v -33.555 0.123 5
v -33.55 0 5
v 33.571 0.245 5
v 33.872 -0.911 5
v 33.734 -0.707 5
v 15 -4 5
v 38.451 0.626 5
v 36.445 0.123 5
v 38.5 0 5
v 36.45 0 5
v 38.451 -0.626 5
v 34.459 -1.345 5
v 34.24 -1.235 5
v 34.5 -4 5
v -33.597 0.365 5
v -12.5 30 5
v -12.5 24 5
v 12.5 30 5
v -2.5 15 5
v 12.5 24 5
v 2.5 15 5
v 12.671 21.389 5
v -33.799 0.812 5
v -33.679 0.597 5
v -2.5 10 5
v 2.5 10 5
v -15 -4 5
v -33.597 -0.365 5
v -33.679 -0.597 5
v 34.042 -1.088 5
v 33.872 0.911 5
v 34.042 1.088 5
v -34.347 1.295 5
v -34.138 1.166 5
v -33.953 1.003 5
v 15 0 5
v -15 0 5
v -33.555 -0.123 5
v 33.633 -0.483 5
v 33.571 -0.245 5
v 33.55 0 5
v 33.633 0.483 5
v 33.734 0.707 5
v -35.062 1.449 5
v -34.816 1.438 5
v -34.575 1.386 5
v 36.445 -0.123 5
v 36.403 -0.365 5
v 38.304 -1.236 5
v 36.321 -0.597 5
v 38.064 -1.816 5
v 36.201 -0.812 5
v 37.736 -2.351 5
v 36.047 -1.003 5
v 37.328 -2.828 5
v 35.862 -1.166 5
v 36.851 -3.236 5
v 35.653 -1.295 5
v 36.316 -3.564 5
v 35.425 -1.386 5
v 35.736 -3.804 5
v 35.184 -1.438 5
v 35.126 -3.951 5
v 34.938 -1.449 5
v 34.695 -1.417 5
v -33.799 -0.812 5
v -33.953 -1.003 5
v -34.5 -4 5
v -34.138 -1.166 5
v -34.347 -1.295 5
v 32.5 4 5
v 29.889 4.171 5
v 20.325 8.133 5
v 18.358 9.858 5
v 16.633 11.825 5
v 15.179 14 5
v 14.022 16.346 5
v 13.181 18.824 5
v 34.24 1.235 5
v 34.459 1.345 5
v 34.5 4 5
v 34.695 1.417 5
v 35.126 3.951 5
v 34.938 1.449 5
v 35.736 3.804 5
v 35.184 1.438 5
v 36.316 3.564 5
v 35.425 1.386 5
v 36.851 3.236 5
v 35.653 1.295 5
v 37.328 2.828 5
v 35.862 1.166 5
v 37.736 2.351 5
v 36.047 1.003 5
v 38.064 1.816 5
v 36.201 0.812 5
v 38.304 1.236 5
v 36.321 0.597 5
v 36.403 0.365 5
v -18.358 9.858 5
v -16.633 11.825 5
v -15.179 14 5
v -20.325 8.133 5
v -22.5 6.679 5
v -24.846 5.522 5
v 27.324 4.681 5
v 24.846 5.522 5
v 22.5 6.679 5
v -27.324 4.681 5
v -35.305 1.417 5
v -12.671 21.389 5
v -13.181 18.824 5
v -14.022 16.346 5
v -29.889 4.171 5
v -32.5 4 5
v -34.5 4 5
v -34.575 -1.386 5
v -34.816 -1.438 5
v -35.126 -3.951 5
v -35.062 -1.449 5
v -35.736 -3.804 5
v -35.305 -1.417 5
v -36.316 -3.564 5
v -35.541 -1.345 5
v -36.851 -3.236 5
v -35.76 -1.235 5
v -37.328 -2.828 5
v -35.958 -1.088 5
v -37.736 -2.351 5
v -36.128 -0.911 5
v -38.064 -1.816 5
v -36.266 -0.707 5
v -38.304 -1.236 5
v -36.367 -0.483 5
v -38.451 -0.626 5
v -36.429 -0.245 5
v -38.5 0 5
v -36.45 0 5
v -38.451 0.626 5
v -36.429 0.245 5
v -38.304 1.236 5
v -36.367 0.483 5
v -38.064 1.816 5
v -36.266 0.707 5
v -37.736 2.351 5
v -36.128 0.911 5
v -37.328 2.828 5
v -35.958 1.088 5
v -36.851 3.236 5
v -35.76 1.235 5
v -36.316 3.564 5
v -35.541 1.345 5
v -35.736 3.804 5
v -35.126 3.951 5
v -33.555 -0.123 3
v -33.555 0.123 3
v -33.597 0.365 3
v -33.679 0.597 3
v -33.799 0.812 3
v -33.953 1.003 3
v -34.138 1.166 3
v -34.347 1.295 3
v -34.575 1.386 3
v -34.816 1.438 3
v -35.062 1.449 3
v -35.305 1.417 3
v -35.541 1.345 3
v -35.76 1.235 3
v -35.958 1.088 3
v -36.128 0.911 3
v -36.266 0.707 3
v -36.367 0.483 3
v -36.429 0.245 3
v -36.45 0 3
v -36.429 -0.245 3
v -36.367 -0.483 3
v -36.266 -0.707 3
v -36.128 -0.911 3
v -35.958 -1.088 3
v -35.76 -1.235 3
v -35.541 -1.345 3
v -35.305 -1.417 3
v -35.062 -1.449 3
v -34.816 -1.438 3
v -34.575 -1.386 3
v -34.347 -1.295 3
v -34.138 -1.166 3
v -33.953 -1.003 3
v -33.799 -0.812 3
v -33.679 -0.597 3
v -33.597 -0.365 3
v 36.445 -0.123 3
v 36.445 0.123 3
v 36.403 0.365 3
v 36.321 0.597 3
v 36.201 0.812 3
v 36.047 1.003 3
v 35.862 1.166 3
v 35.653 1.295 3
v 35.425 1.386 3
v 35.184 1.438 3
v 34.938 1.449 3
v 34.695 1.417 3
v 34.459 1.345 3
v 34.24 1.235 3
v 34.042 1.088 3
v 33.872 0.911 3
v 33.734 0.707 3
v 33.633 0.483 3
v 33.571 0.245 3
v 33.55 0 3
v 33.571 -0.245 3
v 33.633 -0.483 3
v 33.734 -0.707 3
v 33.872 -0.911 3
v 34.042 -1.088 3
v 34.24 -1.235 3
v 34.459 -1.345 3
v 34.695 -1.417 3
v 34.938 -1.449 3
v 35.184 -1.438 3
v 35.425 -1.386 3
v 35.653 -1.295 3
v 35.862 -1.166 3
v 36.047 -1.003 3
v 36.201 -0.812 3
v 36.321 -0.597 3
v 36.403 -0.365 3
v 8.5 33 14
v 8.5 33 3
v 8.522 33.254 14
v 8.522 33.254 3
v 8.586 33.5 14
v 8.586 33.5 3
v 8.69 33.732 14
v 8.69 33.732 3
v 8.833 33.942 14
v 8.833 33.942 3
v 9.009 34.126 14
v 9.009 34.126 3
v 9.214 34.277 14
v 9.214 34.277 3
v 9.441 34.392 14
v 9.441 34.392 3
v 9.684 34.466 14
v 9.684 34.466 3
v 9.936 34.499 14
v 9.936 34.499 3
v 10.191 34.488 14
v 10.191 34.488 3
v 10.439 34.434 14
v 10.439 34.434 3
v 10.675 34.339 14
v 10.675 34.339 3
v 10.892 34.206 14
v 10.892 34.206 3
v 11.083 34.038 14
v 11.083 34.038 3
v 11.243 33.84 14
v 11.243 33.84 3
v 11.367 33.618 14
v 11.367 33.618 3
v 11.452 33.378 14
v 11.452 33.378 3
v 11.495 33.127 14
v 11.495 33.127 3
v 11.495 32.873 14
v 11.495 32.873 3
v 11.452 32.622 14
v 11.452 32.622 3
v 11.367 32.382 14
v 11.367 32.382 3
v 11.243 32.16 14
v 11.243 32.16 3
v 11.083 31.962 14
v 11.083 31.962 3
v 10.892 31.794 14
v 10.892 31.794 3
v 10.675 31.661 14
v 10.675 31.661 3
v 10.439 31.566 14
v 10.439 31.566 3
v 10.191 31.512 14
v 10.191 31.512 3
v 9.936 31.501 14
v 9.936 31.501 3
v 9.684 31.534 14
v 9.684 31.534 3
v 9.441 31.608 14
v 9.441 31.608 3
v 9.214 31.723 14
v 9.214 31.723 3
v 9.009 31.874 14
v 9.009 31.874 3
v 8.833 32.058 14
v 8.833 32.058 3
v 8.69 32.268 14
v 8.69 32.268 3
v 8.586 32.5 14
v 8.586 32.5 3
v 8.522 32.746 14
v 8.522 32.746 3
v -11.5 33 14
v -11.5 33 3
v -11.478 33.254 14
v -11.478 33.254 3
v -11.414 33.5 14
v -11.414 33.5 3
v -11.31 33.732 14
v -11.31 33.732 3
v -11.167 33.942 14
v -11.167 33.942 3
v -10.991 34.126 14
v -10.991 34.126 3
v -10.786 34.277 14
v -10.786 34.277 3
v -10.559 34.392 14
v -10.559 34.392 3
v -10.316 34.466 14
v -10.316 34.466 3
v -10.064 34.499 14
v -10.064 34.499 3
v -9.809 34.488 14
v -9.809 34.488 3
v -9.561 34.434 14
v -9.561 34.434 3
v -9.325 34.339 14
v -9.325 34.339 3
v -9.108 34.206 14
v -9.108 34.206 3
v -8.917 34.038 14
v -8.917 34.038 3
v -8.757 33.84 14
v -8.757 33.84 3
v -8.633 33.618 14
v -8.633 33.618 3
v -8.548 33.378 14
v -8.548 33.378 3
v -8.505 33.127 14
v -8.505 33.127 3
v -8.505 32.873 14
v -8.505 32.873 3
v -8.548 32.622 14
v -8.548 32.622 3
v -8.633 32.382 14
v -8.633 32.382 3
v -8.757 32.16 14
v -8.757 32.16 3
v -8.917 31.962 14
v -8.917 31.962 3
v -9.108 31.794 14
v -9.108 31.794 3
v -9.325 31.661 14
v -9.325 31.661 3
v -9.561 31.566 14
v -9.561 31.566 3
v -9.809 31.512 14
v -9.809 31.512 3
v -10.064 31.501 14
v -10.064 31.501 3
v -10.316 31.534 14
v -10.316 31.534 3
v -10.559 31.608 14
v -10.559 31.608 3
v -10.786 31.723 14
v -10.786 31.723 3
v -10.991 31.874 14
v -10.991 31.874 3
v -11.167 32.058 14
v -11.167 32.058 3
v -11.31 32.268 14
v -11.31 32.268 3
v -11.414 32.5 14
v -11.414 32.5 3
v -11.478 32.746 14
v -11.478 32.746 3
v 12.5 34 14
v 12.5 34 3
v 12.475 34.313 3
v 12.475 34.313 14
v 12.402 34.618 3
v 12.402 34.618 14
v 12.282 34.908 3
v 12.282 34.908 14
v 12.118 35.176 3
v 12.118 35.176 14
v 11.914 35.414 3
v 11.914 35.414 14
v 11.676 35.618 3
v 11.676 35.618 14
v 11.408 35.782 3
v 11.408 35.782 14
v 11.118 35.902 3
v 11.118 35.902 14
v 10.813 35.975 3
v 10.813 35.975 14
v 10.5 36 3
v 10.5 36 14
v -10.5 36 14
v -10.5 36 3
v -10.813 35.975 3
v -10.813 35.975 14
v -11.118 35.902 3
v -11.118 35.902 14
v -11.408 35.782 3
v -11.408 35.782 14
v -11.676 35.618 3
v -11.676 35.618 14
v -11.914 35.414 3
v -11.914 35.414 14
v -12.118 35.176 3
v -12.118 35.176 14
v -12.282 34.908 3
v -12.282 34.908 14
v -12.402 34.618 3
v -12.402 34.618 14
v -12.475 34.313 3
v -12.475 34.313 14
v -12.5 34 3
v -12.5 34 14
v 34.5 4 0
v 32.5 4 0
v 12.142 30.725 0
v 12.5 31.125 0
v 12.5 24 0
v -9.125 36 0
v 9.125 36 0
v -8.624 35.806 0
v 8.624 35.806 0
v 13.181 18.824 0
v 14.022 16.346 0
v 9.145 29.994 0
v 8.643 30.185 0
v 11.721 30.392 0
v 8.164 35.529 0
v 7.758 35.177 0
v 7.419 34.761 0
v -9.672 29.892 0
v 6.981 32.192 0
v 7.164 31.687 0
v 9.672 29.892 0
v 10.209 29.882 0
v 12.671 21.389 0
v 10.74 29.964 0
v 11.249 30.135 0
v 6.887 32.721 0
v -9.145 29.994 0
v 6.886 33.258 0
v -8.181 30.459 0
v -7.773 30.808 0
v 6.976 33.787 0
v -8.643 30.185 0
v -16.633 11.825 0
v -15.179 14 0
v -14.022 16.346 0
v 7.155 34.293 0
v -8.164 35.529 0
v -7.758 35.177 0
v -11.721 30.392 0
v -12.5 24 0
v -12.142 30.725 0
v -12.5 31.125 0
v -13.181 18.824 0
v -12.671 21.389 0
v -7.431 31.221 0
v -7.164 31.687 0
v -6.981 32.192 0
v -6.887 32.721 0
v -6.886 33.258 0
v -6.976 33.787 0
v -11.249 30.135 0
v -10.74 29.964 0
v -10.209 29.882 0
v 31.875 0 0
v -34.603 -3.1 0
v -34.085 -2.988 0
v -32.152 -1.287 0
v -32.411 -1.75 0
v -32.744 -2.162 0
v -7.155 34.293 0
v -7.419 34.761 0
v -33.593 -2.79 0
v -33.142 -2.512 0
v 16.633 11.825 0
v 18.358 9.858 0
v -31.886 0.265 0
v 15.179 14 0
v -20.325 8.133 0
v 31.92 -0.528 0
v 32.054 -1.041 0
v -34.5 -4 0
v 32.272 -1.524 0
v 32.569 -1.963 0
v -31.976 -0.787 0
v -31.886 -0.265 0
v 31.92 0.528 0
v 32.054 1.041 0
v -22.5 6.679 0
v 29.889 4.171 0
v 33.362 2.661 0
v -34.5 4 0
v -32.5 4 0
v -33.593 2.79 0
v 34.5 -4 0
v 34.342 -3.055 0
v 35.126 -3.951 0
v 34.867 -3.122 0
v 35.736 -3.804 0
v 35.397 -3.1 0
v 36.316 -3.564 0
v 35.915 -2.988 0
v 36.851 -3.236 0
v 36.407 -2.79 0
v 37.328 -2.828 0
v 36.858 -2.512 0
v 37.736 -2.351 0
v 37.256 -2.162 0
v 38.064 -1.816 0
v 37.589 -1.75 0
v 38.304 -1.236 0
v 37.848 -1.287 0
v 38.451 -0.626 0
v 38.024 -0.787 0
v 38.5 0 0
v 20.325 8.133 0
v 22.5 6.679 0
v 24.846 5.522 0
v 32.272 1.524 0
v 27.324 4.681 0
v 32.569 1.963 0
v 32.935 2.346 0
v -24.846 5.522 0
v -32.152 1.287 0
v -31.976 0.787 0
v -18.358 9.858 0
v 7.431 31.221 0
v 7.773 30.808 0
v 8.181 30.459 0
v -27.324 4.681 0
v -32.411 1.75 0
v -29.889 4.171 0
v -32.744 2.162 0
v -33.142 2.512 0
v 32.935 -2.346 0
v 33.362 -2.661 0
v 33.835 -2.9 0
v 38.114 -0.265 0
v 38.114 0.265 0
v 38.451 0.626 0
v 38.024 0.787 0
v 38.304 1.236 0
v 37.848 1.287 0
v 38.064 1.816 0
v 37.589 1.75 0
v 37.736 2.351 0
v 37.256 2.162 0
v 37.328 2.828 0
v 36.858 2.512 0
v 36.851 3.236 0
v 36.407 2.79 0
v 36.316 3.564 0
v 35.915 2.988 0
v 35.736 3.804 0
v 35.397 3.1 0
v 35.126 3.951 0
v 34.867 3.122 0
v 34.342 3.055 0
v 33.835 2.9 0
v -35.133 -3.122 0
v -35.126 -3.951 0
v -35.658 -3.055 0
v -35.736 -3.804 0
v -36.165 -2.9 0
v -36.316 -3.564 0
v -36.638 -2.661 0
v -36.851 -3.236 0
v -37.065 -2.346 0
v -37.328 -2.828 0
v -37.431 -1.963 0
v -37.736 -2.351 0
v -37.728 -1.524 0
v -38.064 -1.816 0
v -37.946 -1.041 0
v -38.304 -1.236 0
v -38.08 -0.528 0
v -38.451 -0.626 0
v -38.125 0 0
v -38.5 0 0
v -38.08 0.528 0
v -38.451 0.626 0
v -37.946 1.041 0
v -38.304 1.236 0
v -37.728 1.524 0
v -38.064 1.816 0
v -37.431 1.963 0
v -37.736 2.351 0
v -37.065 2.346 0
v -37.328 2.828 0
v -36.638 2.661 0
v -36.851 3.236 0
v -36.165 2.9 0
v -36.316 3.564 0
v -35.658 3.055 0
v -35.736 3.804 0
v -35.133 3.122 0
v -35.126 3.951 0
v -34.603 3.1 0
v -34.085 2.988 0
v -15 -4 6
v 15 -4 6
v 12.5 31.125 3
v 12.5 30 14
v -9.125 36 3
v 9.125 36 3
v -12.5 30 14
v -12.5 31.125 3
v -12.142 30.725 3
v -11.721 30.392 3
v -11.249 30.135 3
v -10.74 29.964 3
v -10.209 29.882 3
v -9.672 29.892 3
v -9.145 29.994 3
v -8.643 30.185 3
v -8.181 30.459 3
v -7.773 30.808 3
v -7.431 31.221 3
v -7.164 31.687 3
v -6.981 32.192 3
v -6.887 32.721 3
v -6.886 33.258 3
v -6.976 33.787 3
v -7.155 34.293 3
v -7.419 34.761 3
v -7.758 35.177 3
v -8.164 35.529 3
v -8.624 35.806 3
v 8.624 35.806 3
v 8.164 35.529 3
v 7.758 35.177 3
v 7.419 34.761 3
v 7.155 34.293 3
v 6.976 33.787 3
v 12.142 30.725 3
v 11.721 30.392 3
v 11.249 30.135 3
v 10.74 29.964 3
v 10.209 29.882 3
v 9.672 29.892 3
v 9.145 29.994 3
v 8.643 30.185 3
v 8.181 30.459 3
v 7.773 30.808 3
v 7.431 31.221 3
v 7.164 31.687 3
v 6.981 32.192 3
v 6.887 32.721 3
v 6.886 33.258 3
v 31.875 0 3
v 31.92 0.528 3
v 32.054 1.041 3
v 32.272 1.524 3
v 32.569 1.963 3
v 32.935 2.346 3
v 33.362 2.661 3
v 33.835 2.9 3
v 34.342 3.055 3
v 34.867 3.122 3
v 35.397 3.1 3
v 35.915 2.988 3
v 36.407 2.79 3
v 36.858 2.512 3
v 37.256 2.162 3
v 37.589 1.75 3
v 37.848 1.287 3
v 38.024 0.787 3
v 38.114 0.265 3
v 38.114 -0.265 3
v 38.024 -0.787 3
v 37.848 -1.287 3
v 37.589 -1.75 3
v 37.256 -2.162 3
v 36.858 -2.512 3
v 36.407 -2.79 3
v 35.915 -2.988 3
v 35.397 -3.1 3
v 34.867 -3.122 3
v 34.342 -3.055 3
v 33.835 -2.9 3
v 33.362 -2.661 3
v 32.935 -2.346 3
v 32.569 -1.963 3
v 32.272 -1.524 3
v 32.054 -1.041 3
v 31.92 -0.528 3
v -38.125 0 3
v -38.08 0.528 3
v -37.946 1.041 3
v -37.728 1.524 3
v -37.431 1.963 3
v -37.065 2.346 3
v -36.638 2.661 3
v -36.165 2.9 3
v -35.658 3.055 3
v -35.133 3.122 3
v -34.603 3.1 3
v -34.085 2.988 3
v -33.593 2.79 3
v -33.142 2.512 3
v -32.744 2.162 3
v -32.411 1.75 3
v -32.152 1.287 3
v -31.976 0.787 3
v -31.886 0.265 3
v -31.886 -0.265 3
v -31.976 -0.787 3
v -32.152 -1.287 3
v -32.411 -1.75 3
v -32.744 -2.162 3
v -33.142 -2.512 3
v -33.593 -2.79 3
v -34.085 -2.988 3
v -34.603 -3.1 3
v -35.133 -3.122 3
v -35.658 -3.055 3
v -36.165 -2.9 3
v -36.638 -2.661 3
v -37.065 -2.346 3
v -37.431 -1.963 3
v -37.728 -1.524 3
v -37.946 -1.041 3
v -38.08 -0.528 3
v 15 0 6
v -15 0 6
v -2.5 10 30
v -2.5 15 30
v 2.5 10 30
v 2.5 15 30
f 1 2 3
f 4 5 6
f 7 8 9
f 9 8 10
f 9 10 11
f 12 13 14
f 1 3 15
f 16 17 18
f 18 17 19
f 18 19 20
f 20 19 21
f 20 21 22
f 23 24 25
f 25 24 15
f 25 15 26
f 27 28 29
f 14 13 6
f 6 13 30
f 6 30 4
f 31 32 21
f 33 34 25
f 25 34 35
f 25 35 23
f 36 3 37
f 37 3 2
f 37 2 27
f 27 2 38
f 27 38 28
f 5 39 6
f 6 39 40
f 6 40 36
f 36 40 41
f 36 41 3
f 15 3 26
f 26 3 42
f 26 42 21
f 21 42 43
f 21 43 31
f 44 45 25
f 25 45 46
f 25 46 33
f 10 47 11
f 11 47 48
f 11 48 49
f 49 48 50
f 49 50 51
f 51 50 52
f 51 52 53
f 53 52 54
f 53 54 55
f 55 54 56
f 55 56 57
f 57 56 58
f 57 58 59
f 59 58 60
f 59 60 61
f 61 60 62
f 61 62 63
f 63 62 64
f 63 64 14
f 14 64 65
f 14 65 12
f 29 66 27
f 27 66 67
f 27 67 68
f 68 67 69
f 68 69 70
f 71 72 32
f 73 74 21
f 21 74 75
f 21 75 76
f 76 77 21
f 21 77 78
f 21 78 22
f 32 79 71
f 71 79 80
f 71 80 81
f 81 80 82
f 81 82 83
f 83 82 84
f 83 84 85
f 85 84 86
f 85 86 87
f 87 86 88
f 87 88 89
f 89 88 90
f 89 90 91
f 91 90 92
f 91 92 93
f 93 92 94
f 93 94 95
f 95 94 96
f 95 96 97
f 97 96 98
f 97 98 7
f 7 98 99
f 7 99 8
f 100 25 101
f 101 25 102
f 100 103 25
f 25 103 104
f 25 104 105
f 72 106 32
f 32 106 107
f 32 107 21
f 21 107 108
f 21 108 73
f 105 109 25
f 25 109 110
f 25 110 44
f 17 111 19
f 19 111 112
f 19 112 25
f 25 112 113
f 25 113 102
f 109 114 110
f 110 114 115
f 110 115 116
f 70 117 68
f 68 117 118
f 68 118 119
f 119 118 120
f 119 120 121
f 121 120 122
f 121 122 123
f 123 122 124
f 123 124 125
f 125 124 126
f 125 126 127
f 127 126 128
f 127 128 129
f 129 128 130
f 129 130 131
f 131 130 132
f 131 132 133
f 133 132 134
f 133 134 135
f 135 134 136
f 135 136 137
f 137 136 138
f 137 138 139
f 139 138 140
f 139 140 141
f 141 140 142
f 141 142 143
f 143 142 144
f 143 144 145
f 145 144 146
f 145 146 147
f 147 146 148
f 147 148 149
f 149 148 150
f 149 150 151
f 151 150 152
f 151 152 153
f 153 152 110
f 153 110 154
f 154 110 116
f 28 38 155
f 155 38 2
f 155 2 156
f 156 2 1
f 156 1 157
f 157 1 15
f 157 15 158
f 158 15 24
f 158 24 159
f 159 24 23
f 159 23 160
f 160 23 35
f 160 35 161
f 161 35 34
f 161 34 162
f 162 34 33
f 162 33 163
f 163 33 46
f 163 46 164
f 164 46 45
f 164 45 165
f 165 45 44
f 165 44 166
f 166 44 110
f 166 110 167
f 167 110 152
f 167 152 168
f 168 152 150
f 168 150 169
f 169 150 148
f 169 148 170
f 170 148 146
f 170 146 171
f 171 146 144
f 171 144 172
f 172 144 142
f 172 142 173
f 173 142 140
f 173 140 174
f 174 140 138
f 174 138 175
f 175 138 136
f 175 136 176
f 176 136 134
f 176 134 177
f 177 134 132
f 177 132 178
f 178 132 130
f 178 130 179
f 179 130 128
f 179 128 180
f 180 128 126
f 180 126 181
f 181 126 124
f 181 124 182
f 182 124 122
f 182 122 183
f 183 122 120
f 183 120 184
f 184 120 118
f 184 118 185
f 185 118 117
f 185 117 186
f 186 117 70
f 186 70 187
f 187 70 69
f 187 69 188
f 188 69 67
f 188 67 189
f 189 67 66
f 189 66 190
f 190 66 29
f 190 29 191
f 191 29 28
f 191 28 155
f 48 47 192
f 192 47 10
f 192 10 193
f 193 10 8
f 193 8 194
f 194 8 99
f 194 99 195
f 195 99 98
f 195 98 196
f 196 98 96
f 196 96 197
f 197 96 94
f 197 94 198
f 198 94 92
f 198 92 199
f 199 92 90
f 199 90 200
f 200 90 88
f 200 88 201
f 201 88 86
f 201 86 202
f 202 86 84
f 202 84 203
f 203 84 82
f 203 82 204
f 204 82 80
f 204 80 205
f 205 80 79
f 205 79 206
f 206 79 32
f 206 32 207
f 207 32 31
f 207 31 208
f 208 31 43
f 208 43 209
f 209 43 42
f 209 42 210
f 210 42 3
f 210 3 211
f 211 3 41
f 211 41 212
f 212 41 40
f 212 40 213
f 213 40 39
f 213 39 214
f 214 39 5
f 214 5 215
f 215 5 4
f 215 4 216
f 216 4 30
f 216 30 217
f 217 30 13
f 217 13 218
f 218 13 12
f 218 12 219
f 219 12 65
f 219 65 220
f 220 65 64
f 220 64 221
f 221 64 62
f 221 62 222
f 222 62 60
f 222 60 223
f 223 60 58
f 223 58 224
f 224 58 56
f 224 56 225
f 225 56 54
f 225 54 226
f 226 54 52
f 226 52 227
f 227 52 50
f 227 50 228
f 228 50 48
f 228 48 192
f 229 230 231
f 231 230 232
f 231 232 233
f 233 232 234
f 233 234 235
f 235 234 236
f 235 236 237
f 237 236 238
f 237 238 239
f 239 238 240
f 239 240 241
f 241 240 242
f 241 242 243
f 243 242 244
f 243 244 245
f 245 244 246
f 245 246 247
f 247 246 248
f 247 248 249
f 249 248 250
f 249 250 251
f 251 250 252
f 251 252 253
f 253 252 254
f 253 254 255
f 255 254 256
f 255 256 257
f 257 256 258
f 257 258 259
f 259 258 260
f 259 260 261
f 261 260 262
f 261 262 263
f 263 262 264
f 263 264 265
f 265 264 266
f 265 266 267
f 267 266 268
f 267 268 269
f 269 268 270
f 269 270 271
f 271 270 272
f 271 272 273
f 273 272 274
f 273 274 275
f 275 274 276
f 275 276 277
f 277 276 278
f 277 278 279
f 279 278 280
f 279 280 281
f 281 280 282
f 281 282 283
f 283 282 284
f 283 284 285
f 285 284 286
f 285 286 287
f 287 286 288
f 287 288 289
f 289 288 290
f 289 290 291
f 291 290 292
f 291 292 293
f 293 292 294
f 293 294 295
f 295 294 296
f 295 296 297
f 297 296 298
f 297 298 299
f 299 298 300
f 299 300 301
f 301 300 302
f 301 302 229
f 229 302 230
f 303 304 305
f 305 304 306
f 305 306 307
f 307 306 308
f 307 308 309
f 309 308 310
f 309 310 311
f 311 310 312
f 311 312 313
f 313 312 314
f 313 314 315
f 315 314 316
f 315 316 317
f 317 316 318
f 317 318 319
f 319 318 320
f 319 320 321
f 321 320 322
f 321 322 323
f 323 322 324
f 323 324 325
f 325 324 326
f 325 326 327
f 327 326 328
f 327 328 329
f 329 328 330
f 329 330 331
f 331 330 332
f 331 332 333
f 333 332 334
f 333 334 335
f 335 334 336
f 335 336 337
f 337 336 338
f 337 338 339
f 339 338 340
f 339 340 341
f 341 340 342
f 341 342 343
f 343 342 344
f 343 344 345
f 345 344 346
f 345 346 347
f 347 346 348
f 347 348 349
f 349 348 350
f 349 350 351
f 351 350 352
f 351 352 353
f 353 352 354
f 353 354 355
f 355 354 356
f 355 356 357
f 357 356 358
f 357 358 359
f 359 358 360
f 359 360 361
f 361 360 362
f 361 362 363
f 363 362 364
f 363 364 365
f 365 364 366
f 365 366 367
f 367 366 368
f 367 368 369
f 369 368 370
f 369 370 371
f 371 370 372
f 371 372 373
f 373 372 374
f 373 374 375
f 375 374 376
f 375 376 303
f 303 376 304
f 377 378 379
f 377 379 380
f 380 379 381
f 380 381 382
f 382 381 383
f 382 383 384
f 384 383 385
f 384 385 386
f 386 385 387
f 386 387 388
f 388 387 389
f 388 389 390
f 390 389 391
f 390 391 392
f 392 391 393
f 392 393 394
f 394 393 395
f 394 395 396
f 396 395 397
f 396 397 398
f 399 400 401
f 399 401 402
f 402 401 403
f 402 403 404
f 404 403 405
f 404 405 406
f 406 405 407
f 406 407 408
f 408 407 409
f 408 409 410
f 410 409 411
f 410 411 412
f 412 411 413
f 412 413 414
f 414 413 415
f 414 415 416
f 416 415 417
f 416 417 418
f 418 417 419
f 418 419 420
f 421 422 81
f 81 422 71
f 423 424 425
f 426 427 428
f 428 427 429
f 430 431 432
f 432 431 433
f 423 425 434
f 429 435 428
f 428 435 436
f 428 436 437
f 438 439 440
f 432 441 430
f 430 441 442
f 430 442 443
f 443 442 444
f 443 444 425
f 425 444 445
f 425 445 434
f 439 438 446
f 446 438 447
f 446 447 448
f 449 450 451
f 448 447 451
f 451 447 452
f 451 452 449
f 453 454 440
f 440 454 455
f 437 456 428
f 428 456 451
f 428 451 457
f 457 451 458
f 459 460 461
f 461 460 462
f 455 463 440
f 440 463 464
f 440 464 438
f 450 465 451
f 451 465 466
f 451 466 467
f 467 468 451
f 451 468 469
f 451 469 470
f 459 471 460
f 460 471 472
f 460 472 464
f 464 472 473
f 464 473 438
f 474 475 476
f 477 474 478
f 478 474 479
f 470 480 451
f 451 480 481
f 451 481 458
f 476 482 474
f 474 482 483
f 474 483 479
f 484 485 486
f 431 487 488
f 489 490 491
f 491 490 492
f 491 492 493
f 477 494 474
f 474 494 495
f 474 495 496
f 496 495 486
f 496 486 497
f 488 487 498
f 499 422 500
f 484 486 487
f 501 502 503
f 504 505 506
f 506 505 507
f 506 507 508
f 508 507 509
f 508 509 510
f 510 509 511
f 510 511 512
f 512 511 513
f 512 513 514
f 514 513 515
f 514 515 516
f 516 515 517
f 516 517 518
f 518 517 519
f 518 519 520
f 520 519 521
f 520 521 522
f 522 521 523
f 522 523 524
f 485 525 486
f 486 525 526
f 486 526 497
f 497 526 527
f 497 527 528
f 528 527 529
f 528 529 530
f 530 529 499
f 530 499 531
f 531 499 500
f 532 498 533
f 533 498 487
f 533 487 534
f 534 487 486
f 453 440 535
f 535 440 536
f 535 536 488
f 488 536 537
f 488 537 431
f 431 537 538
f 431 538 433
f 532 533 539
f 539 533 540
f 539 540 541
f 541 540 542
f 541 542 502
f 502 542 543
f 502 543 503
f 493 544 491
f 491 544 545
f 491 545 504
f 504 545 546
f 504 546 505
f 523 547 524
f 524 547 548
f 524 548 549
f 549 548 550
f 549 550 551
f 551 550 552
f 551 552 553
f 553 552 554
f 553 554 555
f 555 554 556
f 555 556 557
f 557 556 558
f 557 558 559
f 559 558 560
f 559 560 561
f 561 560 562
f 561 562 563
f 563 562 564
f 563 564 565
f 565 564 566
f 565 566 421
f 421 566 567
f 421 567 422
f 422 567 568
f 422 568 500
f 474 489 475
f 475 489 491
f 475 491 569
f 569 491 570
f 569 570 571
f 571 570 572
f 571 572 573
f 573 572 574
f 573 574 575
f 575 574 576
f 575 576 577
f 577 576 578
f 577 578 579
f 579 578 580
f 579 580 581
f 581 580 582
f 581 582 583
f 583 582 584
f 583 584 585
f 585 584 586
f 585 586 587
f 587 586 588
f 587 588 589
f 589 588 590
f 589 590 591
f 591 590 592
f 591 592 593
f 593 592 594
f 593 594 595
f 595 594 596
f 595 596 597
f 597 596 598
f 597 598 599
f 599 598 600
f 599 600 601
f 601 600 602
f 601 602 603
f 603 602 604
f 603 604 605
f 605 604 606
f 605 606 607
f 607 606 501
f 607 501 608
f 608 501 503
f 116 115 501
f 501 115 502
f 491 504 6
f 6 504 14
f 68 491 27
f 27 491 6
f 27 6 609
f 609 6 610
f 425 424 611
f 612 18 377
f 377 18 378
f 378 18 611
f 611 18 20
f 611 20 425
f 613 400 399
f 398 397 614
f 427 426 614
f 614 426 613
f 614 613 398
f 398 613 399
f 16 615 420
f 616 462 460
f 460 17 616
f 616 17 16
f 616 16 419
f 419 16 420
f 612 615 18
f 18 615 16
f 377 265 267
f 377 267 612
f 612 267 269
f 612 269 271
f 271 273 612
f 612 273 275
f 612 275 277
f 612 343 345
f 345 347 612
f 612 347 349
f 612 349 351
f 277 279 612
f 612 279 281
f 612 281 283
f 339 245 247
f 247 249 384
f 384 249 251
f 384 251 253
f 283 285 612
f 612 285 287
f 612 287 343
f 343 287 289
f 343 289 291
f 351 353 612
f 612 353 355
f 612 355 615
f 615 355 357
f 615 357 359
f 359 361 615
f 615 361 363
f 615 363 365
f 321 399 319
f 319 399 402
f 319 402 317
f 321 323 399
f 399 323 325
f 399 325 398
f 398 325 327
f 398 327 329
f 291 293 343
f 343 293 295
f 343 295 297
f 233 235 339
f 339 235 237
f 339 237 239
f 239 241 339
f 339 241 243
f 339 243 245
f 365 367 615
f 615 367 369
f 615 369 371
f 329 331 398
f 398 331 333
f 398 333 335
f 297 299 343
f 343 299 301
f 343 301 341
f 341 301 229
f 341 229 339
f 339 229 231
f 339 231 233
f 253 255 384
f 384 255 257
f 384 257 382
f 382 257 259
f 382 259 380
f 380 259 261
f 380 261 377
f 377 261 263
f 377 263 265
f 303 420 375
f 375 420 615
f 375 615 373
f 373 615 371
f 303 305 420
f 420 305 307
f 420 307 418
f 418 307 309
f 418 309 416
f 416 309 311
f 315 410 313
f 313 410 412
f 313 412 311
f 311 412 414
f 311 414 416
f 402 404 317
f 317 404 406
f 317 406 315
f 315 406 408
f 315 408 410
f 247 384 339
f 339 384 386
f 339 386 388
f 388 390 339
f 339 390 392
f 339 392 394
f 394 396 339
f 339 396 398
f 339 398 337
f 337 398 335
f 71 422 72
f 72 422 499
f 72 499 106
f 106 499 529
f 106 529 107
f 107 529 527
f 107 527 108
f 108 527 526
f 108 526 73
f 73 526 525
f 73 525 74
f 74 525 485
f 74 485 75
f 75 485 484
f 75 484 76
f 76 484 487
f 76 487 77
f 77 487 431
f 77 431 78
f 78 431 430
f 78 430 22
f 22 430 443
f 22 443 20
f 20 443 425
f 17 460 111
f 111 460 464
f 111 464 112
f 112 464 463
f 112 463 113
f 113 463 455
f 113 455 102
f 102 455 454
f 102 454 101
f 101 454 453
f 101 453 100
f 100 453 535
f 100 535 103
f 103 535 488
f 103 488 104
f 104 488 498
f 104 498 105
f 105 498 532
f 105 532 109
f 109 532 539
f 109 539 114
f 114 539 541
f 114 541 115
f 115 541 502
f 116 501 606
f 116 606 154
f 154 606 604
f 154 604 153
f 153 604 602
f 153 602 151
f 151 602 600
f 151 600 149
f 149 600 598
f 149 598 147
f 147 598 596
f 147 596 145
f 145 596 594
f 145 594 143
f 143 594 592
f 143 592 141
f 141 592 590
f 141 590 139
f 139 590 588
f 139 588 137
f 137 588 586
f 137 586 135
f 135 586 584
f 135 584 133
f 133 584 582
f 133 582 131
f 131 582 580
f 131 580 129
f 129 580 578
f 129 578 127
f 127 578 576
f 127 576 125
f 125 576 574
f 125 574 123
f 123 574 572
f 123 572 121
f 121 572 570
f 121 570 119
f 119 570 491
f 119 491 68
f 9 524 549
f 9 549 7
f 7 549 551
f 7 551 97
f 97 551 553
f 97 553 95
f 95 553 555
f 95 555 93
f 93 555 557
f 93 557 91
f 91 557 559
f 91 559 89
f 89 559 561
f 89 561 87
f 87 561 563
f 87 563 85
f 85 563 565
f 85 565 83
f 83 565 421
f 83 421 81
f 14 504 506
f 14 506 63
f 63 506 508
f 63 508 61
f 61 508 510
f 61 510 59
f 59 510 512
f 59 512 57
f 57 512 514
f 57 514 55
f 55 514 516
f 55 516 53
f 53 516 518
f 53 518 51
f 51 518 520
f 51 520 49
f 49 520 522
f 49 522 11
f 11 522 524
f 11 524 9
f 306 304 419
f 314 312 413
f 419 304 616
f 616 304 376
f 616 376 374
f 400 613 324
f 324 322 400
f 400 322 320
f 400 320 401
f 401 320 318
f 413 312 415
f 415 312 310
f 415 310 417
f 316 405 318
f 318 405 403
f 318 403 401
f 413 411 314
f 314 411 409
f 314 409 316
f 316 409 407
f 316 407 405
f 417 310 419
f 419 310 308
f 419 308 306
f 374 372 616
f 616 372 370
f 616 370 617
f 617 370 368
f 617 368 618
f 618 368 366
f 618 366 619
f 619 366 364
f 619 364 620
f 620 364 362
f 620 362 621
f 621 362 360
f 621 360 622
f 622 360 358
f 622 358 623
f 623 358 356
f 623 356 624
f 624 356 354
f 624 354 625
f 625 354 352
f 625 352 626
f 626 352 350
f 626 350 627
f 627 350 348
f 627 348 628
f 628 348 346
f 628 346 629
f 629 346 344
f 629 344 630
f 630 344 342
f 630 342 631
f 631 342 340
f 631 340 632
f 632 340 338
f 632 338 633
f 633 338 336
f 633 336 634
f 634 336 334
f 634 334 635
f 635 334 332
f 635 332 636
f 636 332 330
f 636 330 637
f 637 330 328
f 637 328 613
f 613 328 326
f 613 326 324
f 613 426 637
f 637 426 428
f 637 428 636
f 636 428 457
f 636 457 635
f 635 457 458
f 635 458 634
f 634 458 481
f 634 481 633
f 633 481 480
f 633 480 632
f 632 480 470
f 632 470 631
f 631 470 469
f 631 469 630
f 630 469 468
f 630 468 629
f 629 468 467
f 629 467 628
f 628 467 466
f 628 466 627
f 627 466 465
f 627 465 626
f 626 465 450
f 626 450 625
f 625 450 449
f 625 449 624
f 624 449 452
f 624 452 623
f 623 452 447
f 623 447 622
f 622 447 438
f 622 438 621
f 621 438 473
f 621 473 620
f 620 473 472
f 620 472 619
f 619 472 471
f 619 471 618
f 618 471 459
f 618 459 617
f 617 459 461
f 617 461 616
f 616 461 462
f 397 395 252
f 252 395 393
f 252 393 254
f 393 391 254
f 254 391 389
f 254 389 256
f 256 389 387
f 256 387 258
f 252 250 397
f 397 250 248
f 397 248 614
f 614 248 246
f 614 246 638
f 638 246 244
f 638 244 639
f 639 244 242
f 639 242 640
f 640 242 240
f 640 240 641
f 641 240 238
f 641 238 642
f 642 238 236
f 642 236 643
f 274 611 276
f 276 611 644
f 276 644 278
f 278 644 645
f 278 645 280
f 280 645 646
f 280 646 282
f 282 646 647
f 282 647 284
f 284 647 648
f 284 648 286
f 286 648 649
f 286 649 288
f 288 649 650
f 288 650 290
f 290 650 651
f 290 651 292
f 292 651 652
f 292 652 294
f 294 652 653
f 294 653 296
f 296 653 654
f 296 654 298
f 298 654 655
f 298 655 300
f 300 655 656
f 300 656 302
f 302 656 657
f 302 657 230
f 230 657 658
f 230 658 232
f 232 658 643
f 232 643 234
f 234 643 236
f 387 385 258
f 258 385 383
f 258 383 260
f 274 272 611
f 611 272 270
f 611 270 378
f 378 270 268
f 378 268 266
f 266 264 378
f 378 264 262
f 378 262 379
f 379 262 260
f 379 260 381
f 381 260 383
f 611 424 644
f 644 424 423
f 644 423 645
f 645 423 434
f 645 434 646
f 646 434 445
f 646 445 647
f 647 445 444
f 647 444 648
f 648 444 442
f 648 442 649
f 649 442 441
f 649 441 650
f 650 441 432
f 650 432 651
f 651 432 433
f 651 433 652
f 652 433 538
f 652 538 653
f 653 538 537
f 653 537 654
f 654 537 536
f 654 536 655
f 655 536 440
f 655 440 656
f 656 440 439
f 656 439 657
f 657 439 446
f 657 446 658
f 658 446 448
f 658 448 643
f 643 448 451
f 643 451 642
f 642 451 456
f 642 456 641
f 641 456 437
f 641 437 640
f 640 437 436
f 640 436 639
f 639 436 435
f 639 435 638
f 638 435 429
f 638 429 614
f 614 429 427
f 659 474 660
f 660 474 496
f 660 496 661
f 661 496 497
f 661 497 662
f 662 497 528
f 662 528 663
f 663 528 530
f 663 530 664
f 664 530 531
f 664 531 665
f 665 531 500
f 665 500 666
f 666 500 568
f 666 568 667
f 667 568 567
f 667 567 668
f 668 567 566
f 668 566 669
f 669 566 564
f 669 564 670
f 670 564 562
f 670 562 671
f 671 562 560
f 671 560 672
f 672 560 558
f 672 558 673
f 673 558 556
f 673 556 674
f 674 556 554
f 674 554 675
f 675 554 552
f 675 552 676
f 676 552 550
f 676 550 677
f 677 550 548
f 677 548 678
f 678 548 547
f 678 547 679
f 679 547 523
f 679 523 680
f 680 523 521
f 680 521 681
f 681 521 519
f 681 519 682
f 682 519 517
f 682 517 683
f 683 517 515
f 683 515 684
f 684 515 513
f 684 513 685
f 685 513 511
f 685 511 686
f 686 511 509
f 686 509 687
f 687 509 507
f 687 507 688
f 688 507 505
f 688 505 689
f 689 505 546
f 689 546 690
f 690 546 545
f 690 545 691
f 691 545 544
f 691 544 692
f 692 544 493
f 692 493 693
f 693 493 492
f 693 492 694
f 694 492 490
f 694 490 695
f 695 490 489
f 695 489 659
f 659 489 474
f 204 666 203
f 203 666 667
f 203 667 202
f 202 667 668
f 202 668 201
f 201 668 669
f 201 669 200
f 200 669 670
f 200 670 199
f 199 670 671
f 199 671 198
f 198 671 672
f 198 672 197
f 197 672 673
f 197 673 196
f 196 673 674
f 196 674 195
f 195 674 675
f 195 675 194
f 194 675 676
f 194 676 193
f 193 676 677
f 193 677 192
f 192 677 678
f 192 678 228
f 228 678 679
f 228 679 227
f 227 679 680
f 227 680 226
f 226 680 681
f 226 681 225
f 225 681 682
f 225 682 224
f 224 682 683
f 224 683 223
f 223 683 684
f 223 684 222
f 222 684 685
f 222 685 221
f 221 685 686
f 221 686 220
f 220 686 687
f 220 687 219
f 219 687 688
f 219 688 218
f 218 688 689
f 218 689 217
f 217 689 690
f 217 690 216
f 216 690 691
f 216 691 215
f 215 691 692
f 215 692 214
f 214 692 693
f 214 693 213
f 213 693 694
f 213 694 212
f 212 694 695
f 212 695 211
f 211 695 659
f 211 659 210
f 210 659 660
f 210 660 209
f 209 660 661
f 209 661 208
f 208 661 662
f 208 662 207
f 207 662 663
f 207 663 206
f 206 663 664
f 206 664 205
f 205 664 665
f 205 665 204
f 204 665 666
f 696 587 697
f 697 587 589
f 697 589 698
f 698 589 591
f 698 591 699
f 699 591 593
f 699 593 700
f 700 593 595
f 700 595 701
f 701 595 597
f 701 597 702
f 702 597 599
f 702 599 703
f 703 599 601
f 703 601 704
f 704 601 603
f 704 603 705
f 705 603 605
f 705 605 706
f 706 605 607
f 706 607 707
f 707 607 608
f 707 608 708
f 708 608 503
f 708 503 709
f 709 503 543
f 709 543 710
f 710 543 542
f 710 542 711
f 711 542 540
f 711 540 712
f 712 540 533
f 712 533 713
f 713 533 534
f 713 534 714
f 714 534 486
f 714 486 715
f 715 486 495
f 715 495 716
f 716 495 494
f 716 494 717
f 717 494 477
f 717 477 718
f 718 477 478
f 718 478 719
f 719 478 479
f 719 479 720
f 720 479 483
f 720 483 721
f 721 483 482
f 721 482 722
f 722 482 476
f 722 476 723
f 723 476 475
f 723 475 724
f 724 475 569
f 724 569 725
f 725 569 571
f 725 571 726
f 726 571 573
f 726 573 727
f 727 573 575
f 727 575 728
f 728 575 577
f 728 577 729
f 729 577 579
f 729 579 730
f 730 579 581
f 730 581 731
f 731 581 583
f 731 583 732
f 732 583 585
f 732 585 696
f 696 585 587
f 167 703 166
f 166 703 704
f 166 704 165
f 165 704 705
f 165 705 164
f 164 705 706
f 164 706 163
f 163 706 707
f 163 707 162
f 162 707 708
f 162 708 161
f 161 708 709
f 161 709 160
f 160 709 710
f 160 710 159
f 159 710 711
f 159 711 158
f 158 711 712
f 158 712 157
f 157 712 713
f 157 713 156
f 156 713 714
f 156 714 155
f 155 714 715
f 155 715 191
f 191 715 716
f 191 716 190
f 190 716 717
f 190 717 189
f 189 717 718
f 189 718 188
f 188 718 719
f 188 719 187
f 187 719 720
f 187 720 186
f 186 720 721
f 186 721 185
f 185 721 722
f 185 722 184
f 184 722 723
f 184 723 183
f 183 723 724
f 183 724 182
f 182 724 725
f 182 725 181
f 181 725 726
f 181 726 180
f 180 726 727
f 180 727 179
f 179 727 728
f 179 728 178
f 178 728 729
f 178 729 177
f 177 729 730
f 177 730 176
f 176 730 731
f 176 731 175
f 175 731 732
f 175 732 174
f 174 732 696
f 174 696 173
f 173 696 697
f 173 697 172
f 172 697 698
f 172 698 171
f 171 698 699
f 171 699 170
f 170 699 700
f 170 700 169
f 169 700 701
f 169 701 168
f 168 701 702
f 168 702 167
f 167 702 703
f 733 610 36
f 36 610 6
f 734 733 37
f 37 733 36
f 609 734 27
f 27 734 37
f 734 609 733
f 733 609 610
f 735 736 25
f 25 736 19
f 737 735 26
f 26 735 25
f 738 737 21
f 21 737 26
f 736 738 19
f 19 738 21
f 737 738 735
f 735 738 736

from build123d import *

# Parameters (mm, degrees)
SKETCH_1_W          = 77
SKETCH_1_H          = 8
SKETCH_1_R          = 1.45
EXTRUDE_1_DEPTH     = 5
SKETCH_2_W          = 25
SKETCH_2_H          = 32
SKETCH_2_R          = 1.5
EXTRUDE_2_DEPTH     = 5
SKETCH_3_W          = 25
SKETCH_3_H          = 6
SKETCH_3_R          = 1.5
EXTRUDE_3_DEPTH     = 9
FILLET_1_R          = 20
FILLET_2_R          = 4
FILLET_3_R          = 2
SKETCH_4_R          = 3.125
CUT_EXTRUDE_3_DEPTH = 3
SKETCH_5_W          = 30
SKETCH_5_H          = 4
EXTRUDE_4_DEPTH     = 1
SKETCH_6_W          = 5
SKETCH_6_H          = 5
EXTRUDE_5_DEPTH     = 25


with BuildPart() as part:
    # Эскиз1 → Бобышка-Вытянуть1 (new body)
    with BuildSketch(Plane.XY):
        Rectangle(SKETCH_1_W, SKETCH_1_H)
        with Locations((-35, 0)):
            Circle(SKETCH_1_R, mode=Mode.SUBTRACT)
        with Locations((35, 0)):
            Circle(SKETCH_1_R, mode=Mode.SUBTRACT)
    extrude(amount=EXTRUDE_1_DEPTH)

    # Эскиз2 → Бобышка-Вытянуть2 (add)
    with BuildSketch(Plane(origin=(0, 0, 0), x_dir=(-1, 0, 0), z_dir=(0, 0, -1))):
        with Locations((0, 20)):
            Rectangle(SKETCH_2_W, SKETCH_2_H)
        with Locations((-10, 33)):
            Circle(SKETCH_2_R, mode=Mode.SUBTRACT)
        with Locations((10, 33)):
            Circle(SKETCH_2_R, mode=Mode.SUBTRACT)
    extrude(amount=-EXTRUDE_2_DEPTH)

    # Эскиз3 → Бобышка-Вытянуть3 (add)
    with BuildSketch(Plane(origin=(0, 0, 5), x_dir=(-1, 0, 0), z_dir=(0, 0, -1))):
        with Locations((0, 33)):
            Rectangle(SKETCH_3_W, SKETCH_3_H)
        with Locations((10, 33)):
            Circle(SKETCH_3_R, mode=Mode.SUBTRACT)
        with Locations((-10, 33)):
            Circle(SKETCH_3_R, mode=Mode.SUBTRACT)
    extrude(amount=-EXTRUDE_3_DEPTH)

    # Скругление1
    fillet_1_edges = [part.edges().sort_by_distance(p)[0] for p in [
        (12.5, 4, 2.5),
        (-12.5, 4, 2.5),
    ]]
    fillet(fillet_1_edges, radius=FILLET_1_R)

    # Скругление2
    fillet_2_edges = [part.edges().sort_by_distance(p)[0] for p in [
        (-38.5, -4, 2.5),
        (-38.5, 4, 2.5),
        (38.5, -4, 2.5),
        (38.5, 4, 2.5),
    ]]
    fillet(fillet_2_edges, radius=FILLET_2_R - 0.0001)  # a hair under: the kernel refuses the full size

    # Скругление3
    fillet_3_edges = [part.edges().sort_by_distance(p)[0] for p in [
        (12.5, 36, 7),
        (-12.5, 36, 7),
    ]]
    fillet(fillet_3_edges, radius=FILLET_3_R)

    # Эскиз4 → Вырез-Вытянуть3 (cut)
    with BuildSketch(Plane(origin=(0, 0, 0), x_dir=(-1, 0, 0), z_dir=(0, 0, -1))):
        with Locations((-10, 33)):
            Circle(SKETCH_4_R)
        with Locations((10, 33)):
            Circle(SKETCH_4_R)
        with Locations((-35, 0)):
            Circle(SKETCH_4_R)
        with Locations((35, 0)):
            Circle(SKETCH_4_R)
    extrude(amount=-CUT_EXTRUDE_3_DEPTH, mode=Mode.SUBTRACT)

    # Эскиз5 → Бобышка-Вытянуть4 (add)
    with BuildSketch(Plane.XY.offset(5)):
        with Locations((0, -2)):
            Rectangle(SKETCH_5_W, SKETCH_5_H)
    extrude(amount=EXTRUDE_4_DEPTH)

    # Эскиз6 → Бобышка-Вытянуть5 (add)
    with BuildSketch(Plane.XY.offset(5)):
        with Locations((0, 12.5)):
            Rectangle(SKETCH_6_W, SKETCH_6_H)
    extrude(amount=EXTRUDE_5_DEPTH)


solid = part.part
